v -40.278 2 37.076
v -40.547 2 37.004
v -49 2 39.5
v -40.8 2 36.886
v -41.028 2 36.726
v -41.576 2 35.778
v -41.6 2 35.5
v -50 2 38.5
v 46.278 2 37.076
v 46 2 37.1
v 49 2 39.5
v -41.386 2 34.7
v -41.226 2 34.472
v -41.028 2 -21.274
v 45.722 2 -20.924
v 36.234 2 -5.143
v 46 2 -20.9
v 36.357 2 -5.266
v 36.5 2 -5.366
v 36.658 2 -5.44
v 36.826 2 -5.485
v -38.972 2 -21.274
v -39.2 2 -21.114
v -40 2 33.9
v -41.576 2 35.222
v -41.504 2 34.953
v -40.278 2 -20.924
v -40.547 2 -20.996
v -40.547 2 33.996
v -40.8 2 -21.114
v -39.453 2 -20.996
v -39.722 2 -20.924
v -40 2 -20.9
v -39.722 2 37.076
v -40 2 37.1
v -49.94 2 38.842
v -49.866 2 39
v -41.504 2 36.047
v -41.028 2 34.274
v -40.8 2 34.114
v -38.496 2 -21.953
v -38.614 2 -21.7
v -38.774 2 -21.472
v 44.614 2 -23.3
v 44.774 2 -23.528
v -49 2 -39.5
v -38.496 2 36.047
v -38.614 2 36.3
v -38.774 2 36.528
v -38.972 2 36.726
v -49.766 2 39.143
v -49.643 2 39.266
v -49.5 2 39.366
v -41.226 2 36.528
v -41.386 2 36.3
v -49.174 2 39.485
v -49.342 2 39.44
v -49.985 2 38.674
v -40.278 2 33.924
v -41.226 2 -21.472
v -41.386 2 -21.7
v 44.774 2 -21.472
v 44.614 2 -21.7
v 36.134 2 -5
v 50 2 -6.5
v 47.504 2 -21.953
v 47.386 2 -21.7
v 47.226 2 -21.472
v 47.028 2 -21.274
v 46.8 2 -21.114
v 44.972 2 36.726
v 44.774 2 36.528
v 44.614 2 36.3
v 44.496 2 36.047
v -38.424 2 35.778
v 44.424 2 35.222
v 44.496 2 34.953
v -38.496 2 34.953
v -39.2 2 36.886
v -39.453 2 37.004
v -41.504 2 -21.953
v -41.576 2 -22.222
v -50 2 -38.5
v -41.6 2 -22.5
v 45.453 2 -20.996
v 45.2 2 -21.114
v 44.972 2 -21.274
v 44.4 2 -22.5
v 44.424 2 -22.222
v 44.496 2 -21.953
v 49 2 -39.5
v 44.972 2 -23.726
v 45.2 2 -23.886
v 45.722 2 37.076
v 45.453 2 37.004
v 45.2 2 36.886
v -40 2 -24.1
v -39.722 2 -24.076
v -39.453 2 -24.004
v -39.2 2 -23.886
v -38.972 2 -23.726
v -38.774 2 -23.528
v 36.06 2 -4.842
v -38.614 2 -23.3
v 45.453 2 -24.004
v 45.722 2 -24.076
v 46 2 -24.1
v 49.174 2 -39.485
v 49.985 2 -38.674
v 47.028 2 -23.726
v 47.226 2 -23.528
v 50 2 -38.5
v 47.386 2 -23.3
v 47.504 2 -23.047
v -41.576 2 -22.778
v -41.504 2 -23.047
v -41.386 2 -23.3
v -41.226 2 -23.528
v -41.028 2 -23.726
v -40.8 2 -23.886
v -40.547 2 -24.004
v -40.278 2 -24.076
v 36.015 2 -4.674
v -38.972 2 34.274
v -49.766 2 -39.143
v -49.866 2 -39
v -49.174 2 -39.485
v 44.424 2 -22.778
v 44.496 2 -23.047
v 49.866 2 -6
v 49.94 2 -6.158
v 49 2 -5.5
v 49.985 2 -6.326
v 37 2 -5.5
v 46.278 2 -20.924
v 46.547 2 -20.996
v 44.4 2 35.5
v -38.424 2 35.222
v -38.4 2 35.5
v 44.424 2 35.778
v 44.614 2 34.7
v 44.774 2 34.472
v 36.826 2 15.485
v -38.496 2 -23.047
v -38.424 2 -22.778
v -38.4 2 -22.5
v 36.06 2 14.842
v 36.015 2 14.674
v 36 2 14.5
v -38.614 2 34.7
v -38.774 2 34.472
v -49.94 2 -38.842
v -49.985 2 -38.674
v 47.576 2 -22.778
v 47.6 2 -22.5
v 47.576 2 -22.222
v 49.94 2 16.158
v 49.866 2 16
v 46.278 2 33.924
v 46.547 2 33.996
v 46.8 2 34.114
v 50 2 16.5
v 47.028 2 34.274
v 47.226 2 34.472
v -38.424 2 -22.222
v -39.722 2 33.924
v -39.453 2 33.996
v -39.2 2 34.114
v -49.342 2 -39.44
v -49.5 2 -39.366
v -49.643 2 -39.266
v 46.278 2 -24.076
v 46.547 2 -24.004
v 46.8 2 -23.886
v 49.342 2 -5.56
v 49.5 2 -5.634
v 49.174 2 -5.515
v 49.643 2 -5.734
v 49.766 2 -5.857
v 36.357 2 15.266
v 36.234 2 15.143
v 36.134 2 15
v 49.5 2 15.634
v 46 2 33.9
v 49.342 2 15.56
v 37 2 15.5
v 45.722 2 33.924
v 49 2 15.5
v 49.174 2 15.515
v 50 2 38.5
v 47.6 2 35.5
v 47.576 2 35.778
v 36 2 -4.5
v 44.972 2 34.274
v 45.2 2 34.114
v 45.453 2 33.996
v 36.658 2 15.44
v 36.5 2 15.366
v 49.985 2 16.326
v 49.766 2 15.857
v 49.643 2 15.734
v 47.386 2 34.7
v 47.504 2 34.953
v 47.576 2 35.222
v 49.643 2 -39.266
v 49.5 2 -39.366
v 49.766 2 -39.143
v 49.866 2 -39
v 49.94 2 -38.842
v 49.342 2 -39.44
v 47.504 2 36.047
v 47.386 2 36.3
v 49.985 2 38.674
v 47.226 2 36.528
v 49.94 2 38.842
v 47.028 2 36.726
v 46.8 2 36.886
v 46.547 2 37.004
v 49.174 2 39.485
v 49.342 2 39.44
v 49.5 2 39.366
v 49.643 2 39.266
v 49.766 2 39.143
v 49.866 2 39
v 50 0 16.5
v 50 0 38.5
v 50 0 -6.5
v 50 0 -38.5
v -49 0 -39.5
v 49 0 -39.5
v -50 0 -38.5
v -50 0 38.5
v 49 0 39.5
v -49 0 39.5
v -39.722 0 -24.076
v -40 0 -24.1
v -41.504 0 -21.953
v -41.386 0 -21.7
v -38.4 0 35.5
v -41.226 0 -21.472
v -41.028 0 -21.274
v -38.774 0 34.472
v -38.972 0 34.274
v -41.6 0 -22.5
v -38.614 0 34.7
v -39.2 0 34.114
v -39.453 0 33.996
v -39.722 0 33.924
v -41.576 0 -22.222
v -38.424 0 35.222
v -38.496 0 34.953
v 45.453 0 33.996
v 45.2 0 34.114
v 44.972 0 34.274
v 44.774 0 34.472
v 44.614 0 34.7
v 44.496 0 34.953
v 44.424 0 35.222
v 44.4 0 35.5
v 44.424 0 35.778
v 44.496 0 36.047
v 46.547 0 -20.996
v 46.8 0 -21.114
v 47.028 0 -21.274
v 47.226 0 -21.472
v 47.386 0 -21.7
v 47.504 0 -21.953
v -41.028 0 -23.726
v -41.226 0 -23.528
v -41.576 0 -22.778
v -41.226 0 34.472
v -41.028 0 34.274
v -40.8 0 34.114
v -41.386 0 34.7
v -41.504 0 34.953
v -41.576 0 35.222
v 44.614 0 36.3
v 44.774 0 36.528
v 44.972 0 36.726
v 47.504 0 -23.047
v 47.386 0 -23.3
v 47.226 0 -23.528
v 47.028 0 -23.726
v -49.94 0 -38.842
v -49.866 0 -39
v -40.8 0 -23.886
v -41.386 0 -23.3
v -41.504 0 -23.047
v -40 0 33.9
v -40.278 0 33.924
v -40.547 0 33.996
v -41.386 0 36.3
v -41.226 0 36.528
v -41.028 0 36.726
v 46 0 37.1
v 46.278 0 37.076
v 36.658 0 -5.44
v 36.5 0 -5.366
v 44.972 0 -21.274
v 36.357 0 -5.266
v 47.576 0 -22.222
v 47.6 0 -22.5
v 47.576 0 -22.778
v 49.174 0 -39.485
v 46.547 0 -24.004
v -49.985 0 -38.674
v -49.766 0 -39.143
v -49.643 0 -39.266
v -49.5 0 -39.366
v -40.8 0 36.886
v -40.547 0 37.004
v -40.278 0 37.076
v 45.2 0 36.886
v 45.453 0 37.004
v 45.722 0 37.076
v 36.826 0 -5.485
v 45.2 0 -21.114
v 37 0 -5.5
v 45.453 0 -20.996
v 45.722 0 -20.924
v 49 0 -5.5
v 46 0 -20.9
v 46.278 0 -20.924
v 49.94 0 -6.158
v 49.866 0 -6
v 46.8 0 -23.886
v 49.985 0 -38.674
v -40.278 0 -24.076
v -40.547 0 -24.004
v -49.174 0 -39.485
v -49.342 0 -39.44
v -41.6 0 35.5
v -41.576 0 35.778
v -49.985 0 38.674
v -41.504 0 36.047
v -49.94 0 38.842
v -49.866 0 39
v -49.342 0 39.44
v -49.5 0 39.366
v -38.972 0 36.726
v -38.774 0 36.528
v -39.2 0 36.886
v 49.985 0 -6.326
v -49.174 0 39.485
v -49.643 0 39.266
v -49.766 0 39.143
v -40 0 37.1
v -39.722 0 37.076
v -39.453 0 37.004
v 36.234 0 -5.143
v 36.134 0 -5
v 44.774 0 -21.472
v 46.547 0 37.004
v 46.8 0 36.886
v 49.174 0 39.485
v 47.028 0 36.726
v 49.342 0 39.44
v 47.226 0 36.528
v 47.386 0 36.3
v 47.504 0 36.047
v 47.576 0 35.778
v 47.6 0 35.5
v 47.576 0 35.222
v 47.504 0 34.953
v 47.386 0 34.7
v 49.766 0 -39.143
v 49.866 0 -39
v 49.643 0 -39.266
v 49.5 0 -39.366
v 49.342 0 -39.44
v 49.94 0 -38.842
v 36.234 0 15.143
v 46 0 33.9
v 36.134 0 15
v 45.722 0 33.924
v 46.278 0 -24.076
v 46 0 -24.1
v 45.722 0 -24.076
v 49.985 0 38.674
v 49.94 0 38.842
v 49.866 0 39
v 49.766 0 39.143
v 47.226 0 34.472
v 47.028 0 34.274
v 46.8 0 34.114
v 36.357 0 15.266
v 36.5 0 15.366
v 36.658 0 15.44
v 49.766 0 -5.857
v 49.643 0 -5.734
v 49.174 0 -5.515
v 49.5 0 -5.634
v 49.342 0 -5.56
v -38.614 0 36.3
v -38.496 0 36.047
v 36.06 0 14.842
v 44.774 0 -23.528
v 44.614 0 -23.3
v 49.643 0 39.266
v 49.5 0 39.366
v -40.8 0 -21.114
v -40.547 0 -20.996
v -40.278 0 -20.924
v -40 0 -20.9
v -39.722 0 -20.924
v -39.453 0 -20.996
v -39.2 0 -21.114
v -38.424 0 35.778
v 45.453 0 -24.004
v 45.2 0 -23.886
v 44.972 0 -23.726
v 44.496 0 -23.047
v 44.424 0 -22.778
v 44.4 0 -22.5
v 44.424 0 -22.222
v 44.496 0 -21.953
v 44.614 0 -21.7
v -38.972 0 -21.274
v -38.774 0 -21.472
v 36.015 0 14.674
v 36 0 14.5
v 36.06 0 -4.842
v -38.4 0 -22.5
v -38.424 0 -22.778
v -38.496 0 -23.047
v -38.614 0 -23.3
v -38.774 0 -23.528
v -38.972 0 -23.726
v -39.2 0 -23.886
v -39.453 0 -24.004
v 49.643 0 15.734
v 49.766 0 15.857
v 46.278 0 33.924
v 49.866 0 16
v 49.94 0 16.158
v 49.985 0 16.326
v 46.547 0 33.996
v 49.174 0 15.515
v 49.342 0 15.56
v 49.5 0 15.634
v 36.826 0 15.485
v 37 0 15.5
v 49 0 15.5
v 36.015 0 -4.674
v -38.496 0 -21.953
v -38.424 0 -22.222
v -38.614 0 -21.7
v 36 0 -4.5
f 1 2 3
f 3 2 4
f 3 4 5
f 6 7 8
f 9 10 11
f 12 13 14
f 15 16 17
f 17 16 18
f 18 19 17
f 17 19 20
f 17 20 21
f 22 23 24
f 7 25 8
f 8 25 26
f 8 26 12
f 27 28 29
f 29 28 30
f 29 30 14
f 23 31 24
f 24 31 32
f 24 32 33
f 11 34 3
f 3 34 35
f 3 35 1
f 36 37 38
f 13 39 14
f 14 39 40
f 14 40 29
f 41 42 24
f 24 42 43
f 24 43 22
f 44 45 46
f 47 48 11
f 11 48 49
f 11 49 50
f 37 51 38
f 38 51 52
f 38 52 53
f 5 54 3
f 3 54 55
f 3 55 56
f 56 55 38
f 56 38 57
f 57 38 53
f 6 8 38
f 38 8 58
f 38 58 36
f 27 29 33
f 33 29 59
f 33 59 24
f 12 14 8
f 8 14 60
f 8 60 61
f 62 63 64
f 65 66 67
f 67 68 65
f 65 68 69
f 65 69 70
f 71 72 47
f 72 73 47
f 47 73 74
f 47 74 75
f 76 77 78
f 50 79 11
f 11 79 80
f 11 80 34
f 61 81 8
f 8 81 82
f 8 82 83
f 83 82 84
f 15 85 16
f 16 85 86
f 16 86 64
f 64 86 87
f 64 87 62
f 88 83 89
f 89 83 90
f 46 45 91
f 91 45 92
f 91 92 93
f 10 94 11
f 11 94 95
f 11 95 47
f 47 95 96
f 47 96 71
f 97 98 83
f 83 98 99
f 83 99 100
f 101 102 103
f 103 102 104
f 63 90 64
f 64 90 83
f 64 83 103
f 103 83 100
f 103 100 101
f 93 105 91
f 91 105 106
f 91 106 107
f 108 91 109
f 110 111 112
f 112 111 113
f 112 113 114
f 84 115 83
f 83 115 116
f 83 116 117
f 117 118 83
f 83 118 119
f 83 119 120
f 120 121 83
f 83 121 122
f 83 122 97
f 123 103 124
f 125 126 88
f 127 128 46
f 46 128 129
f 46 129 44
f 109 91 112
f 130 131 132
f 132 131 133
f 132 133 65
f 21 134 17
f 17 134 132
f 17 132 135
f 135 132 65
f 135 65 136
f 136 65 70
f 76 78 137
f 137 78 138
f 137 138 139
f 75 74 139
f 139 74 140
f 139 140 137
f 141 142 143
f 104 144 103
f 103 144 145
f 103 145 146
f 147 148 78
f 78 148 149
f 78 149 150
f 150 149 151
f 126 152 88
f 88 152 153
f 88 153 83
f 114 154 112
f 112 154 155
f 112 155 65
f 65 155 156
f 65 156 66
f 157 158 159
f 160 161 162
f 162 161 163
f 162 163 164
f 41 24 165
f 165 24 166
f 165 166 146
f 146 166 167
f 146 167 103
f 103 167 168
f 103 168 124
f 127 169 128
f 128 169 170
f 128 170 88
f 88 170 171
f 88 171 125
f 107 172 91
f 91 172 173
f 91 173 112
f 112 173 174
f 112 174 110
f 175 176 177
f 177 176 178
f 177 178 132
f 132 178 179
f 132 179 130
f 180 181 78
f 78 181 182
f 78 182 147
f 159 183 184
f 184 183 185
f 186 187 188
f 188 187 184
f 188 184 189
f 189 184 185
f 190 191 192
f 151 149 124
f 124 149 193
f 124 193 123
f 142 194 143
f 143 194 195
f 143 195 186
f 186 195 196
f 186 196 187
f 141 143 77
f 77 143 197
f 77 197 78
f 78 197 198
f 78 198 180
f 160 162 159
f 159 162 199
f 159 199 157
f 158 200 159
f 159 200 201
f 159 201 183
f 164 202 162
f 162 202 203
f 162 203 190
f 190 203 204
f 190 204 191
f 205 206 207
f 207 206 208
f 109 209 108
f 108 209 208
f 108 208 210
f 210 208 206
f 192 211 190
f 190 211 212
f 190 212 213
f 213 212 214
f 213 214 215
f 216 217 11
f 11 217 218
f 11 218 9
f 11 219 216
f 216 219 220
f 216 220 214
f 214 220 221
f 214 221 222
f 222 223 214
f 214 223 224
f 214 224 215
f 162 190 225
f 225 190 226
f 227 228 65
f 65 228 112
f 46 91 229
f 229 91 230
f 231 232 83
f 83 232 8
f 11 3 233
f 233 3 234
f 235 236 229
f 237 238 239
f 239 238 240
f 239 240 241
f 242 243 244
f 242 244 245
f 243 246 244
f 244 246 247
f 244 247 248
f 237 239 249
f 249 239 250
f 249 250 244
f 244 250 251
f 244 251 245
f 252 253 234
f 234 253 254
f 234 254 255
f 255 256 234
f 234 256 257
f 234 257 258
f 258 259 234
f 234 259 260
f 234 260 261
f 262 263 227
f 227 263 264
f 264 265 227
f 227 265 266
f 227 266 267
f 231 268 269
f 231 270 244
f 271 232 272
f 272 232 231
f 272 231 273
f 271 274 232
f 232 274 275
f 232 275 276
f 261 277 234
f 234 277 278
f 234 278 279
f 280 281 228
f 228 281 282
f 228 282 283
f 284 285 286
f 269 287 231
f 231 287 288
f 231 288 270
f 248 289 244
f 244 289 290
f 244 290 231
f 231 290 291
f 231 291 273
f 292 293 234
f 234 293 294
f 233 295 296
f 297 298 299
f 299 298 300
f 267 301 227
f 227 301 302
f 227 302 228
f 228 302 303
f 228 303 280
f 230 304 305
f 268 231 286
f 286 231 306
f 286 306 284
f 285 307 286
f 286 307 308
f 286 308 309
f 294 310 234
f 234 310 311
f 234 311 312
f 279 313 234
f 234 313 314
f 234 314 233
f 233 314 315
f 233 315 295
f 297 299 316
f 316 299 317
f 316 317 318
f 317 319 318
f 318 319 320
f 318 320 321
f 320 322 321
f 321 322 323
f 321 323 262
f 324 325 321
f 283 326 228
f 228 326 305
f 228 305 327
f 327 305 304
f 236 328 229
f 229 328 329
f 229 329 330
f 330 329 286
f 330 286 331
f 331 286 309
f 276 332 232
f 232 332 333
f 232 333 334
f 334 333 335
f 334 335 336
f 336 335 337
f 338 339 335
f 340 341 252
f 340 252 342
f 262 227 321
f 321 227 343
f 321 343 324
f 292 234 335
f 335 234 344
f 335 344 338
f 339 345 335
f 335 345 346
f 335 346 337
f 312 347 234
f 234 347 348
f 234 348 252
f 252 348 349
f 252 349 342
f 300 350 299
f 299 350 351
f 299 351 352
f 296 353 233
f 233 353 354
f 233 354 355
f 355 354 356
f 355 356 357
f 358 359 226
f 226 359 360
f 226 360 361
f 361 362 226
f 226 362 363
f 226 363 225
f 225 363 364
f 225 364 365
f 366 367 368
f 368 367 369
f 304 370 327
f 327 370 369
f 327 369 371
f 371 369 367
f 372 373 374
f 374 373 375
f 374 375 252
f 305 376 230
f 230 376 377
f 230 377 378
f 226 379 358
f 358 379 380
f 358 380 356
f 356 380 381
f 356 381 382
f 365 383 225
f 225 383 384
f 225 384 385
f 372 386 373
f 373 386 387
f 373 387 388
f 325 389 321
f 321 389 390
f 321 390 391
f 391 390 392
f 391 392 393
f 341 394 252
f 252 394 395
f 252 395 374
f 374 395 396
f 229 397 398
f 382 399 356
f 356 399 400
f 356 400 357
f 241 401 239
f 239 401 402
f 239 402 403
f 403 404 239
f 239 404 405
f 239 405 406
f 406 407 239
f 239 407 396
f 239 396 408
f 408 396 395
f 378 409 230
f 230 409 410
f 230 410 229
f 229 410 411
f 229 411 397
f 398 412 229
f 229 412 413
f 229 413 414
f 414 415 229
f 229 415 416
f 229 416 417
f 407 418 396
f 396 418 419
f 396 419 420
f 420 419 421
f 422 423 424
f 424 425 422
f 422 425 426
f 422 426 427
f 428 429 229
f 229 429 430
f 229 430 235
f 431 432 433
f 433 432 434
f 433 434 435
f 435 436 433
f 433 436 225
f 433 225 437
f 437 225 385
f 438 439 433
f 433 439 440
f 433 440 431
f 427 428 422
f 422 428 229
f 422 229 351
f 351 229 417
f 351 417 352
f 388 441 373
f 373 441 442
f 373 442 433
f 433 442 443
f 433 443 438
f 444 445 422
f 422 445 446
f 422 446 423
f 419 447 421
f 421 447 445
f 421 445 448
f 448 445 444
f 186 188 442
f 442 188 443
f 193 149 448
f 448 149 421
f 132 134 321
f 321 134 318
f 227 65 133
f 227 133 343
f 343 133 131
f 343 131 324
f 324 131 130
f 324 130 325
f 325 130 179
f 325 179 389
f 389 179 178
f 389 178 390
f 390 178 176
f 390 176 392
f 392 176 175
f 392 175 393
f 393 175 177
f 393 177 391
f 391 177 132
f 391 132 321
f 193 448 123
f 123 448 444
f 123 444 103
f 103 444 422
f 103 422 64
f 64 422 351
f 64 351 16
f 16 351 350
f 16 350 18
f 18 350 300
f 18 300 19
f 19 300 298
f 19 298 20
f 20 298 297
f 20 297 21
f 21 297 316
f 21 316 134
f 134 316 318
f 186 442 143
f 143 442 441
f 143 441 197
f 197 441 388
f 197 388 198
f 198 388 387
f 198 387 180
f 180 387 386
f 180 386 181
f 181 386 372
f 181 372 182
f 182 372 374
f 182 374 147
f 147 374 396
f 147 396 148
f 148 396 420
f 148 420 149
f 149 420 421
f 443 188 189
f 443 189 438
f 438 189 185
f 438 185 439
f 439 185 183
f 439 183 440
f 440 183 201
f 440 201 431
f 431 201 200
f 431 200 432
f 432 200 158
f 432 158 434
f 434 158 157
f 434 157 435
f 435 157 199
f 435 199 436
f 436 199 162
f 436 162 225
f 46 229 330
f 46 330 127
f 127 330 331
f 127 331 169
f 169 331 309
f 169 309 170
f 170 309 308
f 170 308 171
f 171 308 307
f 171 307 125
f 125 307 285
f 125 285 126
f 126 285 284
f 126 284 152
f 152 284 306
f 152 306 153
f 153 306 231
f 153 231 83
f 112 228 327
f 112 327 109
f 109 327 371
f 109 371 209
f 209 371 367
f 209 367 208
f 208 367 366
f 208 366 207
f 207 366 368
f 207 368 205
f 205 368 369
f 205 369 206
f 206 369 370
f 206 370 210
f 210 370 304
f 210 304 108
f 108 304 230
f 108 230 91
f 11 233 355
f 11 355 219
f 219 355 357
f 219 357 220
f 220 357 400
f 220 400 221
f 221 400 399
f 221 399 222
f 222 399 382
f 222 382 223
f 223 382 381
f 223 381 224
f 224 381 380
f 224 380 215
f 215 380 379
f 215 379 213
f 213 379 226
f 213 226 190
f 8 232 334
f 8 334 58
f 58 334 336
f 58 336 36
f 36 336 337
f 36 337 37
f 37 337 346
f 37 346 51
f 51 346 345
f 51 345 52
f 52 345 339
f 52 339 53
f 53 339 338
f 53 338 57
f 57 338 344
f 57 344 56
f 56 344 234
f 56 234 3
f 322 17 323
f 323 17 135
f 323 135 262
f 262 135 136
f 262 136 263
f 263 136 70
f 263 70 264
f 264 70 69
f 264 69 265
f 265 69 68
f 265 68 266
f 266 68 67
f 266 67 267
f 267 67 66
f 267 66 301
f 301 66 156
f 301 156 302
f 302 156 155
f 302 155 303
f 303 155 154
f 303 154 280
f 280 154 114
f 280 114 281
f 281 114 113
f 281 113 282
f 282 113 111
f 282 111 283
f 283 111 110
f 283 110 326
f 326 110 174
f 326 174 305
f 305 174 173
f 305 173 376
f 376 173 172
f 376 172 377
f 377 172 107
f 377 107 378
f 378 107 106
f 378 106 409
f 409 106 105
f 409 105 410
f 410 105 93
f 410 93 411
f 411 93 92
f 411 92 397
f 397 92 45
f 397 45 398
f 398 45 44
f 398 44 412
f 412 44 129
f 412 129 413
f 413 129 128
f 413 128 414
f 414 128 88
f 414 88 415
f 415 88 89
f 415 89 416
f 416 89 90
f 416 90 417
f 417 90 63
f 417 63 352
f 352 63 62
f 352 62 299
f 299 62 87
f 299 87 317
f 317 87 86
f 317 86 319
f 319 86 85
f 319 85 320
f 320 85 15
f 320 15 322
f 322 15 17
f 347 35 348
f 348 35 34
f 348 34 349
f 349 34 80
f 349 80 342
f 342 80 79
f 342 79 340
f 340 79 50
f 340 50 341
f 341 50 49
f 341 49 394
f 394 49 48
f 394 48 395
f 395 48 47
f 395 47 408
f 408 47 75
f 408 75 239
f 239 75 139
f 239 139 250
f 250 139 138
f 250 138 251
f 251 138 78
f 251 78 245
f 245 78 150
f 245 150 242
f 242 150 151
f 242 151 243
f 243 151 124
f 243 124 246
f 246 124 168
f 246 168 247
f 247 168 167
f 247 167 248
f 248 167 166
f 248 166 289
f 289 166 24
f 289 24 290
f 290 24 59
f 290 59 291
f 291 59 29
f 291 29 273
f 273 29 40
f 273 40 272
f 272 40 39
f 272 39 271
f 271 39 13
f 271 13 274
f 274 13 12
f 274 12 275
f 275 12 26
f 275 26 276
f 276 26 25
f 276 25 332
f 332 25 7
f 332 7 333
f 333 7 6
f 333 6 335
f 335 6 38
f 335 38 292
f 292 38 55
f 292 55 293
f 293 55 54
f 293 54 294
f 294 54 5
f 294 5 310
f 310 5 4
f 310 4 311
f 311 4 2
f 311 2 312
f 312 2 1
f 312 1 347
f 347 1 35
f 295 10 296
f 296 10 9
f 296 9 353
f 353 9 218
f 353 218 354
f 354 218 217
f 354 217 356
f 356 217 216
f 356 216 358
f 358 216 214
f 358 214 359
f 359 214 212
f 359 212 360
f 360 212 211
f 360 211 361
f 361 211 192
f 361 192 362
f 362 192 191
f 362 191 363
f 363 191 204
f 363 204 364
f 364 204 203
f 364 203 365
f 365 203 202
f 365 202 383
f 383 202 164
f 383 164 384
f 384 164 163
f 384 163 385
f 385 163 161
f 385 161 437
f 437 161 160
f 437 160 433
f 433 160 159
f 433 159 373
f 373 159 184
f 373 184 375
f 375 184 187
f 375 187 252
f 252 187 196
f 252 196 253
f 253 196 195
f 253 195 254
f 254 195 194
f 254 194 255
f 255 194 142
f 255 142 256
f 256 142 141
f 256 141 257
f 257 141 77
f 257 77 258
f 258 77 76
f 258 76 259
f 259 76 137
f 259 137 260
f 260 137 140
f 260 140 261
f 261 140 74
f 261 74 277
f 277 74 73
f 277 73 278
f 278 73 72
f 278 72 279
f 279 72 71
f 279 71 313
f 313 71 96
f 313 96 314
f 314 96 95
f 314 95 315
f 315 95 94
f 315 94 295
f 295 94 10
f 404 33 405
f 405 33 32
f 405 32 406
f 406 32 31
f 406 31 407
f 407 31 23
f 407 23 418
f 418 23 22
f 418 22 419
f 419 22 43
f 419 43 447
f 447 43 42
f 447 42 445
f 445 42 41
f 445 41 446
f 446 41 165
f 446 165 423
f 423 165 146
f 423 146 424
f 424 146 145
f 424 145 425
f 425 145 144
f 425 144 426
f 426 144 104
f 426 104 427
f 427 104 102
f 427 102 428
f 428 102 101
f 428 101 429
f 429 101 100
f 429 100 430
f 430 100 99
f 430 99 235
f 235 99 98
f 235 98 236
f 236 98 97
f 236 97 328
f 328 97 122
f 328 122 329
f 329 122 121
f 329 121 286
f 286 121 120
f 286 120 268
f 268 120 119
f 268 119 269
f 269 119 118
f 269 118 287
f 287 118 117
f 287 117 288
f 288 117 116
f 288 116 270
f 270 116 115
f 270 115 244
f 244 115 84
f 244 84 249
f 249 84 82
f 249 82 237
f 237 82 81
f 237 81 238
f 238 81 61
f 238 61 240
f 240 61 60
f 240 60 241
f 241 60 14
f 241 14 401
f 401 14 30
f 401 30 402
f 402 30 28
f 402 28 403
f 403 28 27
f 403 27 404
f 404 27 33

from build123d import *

# Parameters (mm, degrees)
SKETCH1_W            = 100
SKETCH1_H            = 79
BOSS_EXTRUDE1_DEPTH  = 2
CUT_EXTRUDE1_REACH   = 65.751
SKETCH2_W            = 14
SKETCH2_H            = 21
FILLET1_R            = 1
M3_CLEARANCE_HOLE1_D = 3.2


with BuildPart() as part:
    # Sketch1 → Boss-Extrude1 (new body)
    with BuildSketch(Plane(origin=(0, 0, 0), x_dir=(1, 0, 0), z_dir=(0, 1, 0))):
        Rectangle(SKETCH1_W, SKETCH1_H)
    extrude(amount=BOSS_EXTRUDE1_DEPTH)

    # Sketch2 → Cut-Extrude1 (cut, up to next)
    with BuildSketch(Plane(origin=(0, 2, 0), x_dir=(1, 0, 0), z_dir=(0, 1, 0)), mode=Mode.PRIVATE) as cut_extrude1_sk1:
        with Locations((43, -5)):
            Rectangle(SKETCH2_W, SKETCH2_H)
    cut_extrude1_tool1 = extrude(cut_extrude1_sk1.sketch, amount=-CUT_EXTRUDE1_REACH, mode=Mode.PRIVATE) & part.part
    add(cut_extrude1_tool1.solids().sort_by_distance((43, 2, 5))[0], mode=Mode.SUBTRACT)

    # Fillet1
    fillet1_edges = [part.edges().sort_by_distance(p)[0] for p in [
        (50, 1, -5.5),
        (50, 1, 15.5),
        (36, 1, 15.5),
        (36, 1, -5.5),
        (50, 1, 39.5),
        (-50, 1, 39.5),
        (-50, 1, -39.5),
        (50, 1, -39.5),
    ]]
    fillet(fillet1_edges, radius=FILLET1_R)

    # M3 Clearance Hole1 (through all)
    with Locations(Plane(origin=(0, 2, 0), x_dir=(1, 0, 0), z_dir=(0, 1, 0))):
        with Locations((-40, 22.5), (46, -35.5), (-40, -35.5), (46, 22.5)):
            Hole(M3_CLEARANCE_HOLE1_D / 2)


solid = part.part
